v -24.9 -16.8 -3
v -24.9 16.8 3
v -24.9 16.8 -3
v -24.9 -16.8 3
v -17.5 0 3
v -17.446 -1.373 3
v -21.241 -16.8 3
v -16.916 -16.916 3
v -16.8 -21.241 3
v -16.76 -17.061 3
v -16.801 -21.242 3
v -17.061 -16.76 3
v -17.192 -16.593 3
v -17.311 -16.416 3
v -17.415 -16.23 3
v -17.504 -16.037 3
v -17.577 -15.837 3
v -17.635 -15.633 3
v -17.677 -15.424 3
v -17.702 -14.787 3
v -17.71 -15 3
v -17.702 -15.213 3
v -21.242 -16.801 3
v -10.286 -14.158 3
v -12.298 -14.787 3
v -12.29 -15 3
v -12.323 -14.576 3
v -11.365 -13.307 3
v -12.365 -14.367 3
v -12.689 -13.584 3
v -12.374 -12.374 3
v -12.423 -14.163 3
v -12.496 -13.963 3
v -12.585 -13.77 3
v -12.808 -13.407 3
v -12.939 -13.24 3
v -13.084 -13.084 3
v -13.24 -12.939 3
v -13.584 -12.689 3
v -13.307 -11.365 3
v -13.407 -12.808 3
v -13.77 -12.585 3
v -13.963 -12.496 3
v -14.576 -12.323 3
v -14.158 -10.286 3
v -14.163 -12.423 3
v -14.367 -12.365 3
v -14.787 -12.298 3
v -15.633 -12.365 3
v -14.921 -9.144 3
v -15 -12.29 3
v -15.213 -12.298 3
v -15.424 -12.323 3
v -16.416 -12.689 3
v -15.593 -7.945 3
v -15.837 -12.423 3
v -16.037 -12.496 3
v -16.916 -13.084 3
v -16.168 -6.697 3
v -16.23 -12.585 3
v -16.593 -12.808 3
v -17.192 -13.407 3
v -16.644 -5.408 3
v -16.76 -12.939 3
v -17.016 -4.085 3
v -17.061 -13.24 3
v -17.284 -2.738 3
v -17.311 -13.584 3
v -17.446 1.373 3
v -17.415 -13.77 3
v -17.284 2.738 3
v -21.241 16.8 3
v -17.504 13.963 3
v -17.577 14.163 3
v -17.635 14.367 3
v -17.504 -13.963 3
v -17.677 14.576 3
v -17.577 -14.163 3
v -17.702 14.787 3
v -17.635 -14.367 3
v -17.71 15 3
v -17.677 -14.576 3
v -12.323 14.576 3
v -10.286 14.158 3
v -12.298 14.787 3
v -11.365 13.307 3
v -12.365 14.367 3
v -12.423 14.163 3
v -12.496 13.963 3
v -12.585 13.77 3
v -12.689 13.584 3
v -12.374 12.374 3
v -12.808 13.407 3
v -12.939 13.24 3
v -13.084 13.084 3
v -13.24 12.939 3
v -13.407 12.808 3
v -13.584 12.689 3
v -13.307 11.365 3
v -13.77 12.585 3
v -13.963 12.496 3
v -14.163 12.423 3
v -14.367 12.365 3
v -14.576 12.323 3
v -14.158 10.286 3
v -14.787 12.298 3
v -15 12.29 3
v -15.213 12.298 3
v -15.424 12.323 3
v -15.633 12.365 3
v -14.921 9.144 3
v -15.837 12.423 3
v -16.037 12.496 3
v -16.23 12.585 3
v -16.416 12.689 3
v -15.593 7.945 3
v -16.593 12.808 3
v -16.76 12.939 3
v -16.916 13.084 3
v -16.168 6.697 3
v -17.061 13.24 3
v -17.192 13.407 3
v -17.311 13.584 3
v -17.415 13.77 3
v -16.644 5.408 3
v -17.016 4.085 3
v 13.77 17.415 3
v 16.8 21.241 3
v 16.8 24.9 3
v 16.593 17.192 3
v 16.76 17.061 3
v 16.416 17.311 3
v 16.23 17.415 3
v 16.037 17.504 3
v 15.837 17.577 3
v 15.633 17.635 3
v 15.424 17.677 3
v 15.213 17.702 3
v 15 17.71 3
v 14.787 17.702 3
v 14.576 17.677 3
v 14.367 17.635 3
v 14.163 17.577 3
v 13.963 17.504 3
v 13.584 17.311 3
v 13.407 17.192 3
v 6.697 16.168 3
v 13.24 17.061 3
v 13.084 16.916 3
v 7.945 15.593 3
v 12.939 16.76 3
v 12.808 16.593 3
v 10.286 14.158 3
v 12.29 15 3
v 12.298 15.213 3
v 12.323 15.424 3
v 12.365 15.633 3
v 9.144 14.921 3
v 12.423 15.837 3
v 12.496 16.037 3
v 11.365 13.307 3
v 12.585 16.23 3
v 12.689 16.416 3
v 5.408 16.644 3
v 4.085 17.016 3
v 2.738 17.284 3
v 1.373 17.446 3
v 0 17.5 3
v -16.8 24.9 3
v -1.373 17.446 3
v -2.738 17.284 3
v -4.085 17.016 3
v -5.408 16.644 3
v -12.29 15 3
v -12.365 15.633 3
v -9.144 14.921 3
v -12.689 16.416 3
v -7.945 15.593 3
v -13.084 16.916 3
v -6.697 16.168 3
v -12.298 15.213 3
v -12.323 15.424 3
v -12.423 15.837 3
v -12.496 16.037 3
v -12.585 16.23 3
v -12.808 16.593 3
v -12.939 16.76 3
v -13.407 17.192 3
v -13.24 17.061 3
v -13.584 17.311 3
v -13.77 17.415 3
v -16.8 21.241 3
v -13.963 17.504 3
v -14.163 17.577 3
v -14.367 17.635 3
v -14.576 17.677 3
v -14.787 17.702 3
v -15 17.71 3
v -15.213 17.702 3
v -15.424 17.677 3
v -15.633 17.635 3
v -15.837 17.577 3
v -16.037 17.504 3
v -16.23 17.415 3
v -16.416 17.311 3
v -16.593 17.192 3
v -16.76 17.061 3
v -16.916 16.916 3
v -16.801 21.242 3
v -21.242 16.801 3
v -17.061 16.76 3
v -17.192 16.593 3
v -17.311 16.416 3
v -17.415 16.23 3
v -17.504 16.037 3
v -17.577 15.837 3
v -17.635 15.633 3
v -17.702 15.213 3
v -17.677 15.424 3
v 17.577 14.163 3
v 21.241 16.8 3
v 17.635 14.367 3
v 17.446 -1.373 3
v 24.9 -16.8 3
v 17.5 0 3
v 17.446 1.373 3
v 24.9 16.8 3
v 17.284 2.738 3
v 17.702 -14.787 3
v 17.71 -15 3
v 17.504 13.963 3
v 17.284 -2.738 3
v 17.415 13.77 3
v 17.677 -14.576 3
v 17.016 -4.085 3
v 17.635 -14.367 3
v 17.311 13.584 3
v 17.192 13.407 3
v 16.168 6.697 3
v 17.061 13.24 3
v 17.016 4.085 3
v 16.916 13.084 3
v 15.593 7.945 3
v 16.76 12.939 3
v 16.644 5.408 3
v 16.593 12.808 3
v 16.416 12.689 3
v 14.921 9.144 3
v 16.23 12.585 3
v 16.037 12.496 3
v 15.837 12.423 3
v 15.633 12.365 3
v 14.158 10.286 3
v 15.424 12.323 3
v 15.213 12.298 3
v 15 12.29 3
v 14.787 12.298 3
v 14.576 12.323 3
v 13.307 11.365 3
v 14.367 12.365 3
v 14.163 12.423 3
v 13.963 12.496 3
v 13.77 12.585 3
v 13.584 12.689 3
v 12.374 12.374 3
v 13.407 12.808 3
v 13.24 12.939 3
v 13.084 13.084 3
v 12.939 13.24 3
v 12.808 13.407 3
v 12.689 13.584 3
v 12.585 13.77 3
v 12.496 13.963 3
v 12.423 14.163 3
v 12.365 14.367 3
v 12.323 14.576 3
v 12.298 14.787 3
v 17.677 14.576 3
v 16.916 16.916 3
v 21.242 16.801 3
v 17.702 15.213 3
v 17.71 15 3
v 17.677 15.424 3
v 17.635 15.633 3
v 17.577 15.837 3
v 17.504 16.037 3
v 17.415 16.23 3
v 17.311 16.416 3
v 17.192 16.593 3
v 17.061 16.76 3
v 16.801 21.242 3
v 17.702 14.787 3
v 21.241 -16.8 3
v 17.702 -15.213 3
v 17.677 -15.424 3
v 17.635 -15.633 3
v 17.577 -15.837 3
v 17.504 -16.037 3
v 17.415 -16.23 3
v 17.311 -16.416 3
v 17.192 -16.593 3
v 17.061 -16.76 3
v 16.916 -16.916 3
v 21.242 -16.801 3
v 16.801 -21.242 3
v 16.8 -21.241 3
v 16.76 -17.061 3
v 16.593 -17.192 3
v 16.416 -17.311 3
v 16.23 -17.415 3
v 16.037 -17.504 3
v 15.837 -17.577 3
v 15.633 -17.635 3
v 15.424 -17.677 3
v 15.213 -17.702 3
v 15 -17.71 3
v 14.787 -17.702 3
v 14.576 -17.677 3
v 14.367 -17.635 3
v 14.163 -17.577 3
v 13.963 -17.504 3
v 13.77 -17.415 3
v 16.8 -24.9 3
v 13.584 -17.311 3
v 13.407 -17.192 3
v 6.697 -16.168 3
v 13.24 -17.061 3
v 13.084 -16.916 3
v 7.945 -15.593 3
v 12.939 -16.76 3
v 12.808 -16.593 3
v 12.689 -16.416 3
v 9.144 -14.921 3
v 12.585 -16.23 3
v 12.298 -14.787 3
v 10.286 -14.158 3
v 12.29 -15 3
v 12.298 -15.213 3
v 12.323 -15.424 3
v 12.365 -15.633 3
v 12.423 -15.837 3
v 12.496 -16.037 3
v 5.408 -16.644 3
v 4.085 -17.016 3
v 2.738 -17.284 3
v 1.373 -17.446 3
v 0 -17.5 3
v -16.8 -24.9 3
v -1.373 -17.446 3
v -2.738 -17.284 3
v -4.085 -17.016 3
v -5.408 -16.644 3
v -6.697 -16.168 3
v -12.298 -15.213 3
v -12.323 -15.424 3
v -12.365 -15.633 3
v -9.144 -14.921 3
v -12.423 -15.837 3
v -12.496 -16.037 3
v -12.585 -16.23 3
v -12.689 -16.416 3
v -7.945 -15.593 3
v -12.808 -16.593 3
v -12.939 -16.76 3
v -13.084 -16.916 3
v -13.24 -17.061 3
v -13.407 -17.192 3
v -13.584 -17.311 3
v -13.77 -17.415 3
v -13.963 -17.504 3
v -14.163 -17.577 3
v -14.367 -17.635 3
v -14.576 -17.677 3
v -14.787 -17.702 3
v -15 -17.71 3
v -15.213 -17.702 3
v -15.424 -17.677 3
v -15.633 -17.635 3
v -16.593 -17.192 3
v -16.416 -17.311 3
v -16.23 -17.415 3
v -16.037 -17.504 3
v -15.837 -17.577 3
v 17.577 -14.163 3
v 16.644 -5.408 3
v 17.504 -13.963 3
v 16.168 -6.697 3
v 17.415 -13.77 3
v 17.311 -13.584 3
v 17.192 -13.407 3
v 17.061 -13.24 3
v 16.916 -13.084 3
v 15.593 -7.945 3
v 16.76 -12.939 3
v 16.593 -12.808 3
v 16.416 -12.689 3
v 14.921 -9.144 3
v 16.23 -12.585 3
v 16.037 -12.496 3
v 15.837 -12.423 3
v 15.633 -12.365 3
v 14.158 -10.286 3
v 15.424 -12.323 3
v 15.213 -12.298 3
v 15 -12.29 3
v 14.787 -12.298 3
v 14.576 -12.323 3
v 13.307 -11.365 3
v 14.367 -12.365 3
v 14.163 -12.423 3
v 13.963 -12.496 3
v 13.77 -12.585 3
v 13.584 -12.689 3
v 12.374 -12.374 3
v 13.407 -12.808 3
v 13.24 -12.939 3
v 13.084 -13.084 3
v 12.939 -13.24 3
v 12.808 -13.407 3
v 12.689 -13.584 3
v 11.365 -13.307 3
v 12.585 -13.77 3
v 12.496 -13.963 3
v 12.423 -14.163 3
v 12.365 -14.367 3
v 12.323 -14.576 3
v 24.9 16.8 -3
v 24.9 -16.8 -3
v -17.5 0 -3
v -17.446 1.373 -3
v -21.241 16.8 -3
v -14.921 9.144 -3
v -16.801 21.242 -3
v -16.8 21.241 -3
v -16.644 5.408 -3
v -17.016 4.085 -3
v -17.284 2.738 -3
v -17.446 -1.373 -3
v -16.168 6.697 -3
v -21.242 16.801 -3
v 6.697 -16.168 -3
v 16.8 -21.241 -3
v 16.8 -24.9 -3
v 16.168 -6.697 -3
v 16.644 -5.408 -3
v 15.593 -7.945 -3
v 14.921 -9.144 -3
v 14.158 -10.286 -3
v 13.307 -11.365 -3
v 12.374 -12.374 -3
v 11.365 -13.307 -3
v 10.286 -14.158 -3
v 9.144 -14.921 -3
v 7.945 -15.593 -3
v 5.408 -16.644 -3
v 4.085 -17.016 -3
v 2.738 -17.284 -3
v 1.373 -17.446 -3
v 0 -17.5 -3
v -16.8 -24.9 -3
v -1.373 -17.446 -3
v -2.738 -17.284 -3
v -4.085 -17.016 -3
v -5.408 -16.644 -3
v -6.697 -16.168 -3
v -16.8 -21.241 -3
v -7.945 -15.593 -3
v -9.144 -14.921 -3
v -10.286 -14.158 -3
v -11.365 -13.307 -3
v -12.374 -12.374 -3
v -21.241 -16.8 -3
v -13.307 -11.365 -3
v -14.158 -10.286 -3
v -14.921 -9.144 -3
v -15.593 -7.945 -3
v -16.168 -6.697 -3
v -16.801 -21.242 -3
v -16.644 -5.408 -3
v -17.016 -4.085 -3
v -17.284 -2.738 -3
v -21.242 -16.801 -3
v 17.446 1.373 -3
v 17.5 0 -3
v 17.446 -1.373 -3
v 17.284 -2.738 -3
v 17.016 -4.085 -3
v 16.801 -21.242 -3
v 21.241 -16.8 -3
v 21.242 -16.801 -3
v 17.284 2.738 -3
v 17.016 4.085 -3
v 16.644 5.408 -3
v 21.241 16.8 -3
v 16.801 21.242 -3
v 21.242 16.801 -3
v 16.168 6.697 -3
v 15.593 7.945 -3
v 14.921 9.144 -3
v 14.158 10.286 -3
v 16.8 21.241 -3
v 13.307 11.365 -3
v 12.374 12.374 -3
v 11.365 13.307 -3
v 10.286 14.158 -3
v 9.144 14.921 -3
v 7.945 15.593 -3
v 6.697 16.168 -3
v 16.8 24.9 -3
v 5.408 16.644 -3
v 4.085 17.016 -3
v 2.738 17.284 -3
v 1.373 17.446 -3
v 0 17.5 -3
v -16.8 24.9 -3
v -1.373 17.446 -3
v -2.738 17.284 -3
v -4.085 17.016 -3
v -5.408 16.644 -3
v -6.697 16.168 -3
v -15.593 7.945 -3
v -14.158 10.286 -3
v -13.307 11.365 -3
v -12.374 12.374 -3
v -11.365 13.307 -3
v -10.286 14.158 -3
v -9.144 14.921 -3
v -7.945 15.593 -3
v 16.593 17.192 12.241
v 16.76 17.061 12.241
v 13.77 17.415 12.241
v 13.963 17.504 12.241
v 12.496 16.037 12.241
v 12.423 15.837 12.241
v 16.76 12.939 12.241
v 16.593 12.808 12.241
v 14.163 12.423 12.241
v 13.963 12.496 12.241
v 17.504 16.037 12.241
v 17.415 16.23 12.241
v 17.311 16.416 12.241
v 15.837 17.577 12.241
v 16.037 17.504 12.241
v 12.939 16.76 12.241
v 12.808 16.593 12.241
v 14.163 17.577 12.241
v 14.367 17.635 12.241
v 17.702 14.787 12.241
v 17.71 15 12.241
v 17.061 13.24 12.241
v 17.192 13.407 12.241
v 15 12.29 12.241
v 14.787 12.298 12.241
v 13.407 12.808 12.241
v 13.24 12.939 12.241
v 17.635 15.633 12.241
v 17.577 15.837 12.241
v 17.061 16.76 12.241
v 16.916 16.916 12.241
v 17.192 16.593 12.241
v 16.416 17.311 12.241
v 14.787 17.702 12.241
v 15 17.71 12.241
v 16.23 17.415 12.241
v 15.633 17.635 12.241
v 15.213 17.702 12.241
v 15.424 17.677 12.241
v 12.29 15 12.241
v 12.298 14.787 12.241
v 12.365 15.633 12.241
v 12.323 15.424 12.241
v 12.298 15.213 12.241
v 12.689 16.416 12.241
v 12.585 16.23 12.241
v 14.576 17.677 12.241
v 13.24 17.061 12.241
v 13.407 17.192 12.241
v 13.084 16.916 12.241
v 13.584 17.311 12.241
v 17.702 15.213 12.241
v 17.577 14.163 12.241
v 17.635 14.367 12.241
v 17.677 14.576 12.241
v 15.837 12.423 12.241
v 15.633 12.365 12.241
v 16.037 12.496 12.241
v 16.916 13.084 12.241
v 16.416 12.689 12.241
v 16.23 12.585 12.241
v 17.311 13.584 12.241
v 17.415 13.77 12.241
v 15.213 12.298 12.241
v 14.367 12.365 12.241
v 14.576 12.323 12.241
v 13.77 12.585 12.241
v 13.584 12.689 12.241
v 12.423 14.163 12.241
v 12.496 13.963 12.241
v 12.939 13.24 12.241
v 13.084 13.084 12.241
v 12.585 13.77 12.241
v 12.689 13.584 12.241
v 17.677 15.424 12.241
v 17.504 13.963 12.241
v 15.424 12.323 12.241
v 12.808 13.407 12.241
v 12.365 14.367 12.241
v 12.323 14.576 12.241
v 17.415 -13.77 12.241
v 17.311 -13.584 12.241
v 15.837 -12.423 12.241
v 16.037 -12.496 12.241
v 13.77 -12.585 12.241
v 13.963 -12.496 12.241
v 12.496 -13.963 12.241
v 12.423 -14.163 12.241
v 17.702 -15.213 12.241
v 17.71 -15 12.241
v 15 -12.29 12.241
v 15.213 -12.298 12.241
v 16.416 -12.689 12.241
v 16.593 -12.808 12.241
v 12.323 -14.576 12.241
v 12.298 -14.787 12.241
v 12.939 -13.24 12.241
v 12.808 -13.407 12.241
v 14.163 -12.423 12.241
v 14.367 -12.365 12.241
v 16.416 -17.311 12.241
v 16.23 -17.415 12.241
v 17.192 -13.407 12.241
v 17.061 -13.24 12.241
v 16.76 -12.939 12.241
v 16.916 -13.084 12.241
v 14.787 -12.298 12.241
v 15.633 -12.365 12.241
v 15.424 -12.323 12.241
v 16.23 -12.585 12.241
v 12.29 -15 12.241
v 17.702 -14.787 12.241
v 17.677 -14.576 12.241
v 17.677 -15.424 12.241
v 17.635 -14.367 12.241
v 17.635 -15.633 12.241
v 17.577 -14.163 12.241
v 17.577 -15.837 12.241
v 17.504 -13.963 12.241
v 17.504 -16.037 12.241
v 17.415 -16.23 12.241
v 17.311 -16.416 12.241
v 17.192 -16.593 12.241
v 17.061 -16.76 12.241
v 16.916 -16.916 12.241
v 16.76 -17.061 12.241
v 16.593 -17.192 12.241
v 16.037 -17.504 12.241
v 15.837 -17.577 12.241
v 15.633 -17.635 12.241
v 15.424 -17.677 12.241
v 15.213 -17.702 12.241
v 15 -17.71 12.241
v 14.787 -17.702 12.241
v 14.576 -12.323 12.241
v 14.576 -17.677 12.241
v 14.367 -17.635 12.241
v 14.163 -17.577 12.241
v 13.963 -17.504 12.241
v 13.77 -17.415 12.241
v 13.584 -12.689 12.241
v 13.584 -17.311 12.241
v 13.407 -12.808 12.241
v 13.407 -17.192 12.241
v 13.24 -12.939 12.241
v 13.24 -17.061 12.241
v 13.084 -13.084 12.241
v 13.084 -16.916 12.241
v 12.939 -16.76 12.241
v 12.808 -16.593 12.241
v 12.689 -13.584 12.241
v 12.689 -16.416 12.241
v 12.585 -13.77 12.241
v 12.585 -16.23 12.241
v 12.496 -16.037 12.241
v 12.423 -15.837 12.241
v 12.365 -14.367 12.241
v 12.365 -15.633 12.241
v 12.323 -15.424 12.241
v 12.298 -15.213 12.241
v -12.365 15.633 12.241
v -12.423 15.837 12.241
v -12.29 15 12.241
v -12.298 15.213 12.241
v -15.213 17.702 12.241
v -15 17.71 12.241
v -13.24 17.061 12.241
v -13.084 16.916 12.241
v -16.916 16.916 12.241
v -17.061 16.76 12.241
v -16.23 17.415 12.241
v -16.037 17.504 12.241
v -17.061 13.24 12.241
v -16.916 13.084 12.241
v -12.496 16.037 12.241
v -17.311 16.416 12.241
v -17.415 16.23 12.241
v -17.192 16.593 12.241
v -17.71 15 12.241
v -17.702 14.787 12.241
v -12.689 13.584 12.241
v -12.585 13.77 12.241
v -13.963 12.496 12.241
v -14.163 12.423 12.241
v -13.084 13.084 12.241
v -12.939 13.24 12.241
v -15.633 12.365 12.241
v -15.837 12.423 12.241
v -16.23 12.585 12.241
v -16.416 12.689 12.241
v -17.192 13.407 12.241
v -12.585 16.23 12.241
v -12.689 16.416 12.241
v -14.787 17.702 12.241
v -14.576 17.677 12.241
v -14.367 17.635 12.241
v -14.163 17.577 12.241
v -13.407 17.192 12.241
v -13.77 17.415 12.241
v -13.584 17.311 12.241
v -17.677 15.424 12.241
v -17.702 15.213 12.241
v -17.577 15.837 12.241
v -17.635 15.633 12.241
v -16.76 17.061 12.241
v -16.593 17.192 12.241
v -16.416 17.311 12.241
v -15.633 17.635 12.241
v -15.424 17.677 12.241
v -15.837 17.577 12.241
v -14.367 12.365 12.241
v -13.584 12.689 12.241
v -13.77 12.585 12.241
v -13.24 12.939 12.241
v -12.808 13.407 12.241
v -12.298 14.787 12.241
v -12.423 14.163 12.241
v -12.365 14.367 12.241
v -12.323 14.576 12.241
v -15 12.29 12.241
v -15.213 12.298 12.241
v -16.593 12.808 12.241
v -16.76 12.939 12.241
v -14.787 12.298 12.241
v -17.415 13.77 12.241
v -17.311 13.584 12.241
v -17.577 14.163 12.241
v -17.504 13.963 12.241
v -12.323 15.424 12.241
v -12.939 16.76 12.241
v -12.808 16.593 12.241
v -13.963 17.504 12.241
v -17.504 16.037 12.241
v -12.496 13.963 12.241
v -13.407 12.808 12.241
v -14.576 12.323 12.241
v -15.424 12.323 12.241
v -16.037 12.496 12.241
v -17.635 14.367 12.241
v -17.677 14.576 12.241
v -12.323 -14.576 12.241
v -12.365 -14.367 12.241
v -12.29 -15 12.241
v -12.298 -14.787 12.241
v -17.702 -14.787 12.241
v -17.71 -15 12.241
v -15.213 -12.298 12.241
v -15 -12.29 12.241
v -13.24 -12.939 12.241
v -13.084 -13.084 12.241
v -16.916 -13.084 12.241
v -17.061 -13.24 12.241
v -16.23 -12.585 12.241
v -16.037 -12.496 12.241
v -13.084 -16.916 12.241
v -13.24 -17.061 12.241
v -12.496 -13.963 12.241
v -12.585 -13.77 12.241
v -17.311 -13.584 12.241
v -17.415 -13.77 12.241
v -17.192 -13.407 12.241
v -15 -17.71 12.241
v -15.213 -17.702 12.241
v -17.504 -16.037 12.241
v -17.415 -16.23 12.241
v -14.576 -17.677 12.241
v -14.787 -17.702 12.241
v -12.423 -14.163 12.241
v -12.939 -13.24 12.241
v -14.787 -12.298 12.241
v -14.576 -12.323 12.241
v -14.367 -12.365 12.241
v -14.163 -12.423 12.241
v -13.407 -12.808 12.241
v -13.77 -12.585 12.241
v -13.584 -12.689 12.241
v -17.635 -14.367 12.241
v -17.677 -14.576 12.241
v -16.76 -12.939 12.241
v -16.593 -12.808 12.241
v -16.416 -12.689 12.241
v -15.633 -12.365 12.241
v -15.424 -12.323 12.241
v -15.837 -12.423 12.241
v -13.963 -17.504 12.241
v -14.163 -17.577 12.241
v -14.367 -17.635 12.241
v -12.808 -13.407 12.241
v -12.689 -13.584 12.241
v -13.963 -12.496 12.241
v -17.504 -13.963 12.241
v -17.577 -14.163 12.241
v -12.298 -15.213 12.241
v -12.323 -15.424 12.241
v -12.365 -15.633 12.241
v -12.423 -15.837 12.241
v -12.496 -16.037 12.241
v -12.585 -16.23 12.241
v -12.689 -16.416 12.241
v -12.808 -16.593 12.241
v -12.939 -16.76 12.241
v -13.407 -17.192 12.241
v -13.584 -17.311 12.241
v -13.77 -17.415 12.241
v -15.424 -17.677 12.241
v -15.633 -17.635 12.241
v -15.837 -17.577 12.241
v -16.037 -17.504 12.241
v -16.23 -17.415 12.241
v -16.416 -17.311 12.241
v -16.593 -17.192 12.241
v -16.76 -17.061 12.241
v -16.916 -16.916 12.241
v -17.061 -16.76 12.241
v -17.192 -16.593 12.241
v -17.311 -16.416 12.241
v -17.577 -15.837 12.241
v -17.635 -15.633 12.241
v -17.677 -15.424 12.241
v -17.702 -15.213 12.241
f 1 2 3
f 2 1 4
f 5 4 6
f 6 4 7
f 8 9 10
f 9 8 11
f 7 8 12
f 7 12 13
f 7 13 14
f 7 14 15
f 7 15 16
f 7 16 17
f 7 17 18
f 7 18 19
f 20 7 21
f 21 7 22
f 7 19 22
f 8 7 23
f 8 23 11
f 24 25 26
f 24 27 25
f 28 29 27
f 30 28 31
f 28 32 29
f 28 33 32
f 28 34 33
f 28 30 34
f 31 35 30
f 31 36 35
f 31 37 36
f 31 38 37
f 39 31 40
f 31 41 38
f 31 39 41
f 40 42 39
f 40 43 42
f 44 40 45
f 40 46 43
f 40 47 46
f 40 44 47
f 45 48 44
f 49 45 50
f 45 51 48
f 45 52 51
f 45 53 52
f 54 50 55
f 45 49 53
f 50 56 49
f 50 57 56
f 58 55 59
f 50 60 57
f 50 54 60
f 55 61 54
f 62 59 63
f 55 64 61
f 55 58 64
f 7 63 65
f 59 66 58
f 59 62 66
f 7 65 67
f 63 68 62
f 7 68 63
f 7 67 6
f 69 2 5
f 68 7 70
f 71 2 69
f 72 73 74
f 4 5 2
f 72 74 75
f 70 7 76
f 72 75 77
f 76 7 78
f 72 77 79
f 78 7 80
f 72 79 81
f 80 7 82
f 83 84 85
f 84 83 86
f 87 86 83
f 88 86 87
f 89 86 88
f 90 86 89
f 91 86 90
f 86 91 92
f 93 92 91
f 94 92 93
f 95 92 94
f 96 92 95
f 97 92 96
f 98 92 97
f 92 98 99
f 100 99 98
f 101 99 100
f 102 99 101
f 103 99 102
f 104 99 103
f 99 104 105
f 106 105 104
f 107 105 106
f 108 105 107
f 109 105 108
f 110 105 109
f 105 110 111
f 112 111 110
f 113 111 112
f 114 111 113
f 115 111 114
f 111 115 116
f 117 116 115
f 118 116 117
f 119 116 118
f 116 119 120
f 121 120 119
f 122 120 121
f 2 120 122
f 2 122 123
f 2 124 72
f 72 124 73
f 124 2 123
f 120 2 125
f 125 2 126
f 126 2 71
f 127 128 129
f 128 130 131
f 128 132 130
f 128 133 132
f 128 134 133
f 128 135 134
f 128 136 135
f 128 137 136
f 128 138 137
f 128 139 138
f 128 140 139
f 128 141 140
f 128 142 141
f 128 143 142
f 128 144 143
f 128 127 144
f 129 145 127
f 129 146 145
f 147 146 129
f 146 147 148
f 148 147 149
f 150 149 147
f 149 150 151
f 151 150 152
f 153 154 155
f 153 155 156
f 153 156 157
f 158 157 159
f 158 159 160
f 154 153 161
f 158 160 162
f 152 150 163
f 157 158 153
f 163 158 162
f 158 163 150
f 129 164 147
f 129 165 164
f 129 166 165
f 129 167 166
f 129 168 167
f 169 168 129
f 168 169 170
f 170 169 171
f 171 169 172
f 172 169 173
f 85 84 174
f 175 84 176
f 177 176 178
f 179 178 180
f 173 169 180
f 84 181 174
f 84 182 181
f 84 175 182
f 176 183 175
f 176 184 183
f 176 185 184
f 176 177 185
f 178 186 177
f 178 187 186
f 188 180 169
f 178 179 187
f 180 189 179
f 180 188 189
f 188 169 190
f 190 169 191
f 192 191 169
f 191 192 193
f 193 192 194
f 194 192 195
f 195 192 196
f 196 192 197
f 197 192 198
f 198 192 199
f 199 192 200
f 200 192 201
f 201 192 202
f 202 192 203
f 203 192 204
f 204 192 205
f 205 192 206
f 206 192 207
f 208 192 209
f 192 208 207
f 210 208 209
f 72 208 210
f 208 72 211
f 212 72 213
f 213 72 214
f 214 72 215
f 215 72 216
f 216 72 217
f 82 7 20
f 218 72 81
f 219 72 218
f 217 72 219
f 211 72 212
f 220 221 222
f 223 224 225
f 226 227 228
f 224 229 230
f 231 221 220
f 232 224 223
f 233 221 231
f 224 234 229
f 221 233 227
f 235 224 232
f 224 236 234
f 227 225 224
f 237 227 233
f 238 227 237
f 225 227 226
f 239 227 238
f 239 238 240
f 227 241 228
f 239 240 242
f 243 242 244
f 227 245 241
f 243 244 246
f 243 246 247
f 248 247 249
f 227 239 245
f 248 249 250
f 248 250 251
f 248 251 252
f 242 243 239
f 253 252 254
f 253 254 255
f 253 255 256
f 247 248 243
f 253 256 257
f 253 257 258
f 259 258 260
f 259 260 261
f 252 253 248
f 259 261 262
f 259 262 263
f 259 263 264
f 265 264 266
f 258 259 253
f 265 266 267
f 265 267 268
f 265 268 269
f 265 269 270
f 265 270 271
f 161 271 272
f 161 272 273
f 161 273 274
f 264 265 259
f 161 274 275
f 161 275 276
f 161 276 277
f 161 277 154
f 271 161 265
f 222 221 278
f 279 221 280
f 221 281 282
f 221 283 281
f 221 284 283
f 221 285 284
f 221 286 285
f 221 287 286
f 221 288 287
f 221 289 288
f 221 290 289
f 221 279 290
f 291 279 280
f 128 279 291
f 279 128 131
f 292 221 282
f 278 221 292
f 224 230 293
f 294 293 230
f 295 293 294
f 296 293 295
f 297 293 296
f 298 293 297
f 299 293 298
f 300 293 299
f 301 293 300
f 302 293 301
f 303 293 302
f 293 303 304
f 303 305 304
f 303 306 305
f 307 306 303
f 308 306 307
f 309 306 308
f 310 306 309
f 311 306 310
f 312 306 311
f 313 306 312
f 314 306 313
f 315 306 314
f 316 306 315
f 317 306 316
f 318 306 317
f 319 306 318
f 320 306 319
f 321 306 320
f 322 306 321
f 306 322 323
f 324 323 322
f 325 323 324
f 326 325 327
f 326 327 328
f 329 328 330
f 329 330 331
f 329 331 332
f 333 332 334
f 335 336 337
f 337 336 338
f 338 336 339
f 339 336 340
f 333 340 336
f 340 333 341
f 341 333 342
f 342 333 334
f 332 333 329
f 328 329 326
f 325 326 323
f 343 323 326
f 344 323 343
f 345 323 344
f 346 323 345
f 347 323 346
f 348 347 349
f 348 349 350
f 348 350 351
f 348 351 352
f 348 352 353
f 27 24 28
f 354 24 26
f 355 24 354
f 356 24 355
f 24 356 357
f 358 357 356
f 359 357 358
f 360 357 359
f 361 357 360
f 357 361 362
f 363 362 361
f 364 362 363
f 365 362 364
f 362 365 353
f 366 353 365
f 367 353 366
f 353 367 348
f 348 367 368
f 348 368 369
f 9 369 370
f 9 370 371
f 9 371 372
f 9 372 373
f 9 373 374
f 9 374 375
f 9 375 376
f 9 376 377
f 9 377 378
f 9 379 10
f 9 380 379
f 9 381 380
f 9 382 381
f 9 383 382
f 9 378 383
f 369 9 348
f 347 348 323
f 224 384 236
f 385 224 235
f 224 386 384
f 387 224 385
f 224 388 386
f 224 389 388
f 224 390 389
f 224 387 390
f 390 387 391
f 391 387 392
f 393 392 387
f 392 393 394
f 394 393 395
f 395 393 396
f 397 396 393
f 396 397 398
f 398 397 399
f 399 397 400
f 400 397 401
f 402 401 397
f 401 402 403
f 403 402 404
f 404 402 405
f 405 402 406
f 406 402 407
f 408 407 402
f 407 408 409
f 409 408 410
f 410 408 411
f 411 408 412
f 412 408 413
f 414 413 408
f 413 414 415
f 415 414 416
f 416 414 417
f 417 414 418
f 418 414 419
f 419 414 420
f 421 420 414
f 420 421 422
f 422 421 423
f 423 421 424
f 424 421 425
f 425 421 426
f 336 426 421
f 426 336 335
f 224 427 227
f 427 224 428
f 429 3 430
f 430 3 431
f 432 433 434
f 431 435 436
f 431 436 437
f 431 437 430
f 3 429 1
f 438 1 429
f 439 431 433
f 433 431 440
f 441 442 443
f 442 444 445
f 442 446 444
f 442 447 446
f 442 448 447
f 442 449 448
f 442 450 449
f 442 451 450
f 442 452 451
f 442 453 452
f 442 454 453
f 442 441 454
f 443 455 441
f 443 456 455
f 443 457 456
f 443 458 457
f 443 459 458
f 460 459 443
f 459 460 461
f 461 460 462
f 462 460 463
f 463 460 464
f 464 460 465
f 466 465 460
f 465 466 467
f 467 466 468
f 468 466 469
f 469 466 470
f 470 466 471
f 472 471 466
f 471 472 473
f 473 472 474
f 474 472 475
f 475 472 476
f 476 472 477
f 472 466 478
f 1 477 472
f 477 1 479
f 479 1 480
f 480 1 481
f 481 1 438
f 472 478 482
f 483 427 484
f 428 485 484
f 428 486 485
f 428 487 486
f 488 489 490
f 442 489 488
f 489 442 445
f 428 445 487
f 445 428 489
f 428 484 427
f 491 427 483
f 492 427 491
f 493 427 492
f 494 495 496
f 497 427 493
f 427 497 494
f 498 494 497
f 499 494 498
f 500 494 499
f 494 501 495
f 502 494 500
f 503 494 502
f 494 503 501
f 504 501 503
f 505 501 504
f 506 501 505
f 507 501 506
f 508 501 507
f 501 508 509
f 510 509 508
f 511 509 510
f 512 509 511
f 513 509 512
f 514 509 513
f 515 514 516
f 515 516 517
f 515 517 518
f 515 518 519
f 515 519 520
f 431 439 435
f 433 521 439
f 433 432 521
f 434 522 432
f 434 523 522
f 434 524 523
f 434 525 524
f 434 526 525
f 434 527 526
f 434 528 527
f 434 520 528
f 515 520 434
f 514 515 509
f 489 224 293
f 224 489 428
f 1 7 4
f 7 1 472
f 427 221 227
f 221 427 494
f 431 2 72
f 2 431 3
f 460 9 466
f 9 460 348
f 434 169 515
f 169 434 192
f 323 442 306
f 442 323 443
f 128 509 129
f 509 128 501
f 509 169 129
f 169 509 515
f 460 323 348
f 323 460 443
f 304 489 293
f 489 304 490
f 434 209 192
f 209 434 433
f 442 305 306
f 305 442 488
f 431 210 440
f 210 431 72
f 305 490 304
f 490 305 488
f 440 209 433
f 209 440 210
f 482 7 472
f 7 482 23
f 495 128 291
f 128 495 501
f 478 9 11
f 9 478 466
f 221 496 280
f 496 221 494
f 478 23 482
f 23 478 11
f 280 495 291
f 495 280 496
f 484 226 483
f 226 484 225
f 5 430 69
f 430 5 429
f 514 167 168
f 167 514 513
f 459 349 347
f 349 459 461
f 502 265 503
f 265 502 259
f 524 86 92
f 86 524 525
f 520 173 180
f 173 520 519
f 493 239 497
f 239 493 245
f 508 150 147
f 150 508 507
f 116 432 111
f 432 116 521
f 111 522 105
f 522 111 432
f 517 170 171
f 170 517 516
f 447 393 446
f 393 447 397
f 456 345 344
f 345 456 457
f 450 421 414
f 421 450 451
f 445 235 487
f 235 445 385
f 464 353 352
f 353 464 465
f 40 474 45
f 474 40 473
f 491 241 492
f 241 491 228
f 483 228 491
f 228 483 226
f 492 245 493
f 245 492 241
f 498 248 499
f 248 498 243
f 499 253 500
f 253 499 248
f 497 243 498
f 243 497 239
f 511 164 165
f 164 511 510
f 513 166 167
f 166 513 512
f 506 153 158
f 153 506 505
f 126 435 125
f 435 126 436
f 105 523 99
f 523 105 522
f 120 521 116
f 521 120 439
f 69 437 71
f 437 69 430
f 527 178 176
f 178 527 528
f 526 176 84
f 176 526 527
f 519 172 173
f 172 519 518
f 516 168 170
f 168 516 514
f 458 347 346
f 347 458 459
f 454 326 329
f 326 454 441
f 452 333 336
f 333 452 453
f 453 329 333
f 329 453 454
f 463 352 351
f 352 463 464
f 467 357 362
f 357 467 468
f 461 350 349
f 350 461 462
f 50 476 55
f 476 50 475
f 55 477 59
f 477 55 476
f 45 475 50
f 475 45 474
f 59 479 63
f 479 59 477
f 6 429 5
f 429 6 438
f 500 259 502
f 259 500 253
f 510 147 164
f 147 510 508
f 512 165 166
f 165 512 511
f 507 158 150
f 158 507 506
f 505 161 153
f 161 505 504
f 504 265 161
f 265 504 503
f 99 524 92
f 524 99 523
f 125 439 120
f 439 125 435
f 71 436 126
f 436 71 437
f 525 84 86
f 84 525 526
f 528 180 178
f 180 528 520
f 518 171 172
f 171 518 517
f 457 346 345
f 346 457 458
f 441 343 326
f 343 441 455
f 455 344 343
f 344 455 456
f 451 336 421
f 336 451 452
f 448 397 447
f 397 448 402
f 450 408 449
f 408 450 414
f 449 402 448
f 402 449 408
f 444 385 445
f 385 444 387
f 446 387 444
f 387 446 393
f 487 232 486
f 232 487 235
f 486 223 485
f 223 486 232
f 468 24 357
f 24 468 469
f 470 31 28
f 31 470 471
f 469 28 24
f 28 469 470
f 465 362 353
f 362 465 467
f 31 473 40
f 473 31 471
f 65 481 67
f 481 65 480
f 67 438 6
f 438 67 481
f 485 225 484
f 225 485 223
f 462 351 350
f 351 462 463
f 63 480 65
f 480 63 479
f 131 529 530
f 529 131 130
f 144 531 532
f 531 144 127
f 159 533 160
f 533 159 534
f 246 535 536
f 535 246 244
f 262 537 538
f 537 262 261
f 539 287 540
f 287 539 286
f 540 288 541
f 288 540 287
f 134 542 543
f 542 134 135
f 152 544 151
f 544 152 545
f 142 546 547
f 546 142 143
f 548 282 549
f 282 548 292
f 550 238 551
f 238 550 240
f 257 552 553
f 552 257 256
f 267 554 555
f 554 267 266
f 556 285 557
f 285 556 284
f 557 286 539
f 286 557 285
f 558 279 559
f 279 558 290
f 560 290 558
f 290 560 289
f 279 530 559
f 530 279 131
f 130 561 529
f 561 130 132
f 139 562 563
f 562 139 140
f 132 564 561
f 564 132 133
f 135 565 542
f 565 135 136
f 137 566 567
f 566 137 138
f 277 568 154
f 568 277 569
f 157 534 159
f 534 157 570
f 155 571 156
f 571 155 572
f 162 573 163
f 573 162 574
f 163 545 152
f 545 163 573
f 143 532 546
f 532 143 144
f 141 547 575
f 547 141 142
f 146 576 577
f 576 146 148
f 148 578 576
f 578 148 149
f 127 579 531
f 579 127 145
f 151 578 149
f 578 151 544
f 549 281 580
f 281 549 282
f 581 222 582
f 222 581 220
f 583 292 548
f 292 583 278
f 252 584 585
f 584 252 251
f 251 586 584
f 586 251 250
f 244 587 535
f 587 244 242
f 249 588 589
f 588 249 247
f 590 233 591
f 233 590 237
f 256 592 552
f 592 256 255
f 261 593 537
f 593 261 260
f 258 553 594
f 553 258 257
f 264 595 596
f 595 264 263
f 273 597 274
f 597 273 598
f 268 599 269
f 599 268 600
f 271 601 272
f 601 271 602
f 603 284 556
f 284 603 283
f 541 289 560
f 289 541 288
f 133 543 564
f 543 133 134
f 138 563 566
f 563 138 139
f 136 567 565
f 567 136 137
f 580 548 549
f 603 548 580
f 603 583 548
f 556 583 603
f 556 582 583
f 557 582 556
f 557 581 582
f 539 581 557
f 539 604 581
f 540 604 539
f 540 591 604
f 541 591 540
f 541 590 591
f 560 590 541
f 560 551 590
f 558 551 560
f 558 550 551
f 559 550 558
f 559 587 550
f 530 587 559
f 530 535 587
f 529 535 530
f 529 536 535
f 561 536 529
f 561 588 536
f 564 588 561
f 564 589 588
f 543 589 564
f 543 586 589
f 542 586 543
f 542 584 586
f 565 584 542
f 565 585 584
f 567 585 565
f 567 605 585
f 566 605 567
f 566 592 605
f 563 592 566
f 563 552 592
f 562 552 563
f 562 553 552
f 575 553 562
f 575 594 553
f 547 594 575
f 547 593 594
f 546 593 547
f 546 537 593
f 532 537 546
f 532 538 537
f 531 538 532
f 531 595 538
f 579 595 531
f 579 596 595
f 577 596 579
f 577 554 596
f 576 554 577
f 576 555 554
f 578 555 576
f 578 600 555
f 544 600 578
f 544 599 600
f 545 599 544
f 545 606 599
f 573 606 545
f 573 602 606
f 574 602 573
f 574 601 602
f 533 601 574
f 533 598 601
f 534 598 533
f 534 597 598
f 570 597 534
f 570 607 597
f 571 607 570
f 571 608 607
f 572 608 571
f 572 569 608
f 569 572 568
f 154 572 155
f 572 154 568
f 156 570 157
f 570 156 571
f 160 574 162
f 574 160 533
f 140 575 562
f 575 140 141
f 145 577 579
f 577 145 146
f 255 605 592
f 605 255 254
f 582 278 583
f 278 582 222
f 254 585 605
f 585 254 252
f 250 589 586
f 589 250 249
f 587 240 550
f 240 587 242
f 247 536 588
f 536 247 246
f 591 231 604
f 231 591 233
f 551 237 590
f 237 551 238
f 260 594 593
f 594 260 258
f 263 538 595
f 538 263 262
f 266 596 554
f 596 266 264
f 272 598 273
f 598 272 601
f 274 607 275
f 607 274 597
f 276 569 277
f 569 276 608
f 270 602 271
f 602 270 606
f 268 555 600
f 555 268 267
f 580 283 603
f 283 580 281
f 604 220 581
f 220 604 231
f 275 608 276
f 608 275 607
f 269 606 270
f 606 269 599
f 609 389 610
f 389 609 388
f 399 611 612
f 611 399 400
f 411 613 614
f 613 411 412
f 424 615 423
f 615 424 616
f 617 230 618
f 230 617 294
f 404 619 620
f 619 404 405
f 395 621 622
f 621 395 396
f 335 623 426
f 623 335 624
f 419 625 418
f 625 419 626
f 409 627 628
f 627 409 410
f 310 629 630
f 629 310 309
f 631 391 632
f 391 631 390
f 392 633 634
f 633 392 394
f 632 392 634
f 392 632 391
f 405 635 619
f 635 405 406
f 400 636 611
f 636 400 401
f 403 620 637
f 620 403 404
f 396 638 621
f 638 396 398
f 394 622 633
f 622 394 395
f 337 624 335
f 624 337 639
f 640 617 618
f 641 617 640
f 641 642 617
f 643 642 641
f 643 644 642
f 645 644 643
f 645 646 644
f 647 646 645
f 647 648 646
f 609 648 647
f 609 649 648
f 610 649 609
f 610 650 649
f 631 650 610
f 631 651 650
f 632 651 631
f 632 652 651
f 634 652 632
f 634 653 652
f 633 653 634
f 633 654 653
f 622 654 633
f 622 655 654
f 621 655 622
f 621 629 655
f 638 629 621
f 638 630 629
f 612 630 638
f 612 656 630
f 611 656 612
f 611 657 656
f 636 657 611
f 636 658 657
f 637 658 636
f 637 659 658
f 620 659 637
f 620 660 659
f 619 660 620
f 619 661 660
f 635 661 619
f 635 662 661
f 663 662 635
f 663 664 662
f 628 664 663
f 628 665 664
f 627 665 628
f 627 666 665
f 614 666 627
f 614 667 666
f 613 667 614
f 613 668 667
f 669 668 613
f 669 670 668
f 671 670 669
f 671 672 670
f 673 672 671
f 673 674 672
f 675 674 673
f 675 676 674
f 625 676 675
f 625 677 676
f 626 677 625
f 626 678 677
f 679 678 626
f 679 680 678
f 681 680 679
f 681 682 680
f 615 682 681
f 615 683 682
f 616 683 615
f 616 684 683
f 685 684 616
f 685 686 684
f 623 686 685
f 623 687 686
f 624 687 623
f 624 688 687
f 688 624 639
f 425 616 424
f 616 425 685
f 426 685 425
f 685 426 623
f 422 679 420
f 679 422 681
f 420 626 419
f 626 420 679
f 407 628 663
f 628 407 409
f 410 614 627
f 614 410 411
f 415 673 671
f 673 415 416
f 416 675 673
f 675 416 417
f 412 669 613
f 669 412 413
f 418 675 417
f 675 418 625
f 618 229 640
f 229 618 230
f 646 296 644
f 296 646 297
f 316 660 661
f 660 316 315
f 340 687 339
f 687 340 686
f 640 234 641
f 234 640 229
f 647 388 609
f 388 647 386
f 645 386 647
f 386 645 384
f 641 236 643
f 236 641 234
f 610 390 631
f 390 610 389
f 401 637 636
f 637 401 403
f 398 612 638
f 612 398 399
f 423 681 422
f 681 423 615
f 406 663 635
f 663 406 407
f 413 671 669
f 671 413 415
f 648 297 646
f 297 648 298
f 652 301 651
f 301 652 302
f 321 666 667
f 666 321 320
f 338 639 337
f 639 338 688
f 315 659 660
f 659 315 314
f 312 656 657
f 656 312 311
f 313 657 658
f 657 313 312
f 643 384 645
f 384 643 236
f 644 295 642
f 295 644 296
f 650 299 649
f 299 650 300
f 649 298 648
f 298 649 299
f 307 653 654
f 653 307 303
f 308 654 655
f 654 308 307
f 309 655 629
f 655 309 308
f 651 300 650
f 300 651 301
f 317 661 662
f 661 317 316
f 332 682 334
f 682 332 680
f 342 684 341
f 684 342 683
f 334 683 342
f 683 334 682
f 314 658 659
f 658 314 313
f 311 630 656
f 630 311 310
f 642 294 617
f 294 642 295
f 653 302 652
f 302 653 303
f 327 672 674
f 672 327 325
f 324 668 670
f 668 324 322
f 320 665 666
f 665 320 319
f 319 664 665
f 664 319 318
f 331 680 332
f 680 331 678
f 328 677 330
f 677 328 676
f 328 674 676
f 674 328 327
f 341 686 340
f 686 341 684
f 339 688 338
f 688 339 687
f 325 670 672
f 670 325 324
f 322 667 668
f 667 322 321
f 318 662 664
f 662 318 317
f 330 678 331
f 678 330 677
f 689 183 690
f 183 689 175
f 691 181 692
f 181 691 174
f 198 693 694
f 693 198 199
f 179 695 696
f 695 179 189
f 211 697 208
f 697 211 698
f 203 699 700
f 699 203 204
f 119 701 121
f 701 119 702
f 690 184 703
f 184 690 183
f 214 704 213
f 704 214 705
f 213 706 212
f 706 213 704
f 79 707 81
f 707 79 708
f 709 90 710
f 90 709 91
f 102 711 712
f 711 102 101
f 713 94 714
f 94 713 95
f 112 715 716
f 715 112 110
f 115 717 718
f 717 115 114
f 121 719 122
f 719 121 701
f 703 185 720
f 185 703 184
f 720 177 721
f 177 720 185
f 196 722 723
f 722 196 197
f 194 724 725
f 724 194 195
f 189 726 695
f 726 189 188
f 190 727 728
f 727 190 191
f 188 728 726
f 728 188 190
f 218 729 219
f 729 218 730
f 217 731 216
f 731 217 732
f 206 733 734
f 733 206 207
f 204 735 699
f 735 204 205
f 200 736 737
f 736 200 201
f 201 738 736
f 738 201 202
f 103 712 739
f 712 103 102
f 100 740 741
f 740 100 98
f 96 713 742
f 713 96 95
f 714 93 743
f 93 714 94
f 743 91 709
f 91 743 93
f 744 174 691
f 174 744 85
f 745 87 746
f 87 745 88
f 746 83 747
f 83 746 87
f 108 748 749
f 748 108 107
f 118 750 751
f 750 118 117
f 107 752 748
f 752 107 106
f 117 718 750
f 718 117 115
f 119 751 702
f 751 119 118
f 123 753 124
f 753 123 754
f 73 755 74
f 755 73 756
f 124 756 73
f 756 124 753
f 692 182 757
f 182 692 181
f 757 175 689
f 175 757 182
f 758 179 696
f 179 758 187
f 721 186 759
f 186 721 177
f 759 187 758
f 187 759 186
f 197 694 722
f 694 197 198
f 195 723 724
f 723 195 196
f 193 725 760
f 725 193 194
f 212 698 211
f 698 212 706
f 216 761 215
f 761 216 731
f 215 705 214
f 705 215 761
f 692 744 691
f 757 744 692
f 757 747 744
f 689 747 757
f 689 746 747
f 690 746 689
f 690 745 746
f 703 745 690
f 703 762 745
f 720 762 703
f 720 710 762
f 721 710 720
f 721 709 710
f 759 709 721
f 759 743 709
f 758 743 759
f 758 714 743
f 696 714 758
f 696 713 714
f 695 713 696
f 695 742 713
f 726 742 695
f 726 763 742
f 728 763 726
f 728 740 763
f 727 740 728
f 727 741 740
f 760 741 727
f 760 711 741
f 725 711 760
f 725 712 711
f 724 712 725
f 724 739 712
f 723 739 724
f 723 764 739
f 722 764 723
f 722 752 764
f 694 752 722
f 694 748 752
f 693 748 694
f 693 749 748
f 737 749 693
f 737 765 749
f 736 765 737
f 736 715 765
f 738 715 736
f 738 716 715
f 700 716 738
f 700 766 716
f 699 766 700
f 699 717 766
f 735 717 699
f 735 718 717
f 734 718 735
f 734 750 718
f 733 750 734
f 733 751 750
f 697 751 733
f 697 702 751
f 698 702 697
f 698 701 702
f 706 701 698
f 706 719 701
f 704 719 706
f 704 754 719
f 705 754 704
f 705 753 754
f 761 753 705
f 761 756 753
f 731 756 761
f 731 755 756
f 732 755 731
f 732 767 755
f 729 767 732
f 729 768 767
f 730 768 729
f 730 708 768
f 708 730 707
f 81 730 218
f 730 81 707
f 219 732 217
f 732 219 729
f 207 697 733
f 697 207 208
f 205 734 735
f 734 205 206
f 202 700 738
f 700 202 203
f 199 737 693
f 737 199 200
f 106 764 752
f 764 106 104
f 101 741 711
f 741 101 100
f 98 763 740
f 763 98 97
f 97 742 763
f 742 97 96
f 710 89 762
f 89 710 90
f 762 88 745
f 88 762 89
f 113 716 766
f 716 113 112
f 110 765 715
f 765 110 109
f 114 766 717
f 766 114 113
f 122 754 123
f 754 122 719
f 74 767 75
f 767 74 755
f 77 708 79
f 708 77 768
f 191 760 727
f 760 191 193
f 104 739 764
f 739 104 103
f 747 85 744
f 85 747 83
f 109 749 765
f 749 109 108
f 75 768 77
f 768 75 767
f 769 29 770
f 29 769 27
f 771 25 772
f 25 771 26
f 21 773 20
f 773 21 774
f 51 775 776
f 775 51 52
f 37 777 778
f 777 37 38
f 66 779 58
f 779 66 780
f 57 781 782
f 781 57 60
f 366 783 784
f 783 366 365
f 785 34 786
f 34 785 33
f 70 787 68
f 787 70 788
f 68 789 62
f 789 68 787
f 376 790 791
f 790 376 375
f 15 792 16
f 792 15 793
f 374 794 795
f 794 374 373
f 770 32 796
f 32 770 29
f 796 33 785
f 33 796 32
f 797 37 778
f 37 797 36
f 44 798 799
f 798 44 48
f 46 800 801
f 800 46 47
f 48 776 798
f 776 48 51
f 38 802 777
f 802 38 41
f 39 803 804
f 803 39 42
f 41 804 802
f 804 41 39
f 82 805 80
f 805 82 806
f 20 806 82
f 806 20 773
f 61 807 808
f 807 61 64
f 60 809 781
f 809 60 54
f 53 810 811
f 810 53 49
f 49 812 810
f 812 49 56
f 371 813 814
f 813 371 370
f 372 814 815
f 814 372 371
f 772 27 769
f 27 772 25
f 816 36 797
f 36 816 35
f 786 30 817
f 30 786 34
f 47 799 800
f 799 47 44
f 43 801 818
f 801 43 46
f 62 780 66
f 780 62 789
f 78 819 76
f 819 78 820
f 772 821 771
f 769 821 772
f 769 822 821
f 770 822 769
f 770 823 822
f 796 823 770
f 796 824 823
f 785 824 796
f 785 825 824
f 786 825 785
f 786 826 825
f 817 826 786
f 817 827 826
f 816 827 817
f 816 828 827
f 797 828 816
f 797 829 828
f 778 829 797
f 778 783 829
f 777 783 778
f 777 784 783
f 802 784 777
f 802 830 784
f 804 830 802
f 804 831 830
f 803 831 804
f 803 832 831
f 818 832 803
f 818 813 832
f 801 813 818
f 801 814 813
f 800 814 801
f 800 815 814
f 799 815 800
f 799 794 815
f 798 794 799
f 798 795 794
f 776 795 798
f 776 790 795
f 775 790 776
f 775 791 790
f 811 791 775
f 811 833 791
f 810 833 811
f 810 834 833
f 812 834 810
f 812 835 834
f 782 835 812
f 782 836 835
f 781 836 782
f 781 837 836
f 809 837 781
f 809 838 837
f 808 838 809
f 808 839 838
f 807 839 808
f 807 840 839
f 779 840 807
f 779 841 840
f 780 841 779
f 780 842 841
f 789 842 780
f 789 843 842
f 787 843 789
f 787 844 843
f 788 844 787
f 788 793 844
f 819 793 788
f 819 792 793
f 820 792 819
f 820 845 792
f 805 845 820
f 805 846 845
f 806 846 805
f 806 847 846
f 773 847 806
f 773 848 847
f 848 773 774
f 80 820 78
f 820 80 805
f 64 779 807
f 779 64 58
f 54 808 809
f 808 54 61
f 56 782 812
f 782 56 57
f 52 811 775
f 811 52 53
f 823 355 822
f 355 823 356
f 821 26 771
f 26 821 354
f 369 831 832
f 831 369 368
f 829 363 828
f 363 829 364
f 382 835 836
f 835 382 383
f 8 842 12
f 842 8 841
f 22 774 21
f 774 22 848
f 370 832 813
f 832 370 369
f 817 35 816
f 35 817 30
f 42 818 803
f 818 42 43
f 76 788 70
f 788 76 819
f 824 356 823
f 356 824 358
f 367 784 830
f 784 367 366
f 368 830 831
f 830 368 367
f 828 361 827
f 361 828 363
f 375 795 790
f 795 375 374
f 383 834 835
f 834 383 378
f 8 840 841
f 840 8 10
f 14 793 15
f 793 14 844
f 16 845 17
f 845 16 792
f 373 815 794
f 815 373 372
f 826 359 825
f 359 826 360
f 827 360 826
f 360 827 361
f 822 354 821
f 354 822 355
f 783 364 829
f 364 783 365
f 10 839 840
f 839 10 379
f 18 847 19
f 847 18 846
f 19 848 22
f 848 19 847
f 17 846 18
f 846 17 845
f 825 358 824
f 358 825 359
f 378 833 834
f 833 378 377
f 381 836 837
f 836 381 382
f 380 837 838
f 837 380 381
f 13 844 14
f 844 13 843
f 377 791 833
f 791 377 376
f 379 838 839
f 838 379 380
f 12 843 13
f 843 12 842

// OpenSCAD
//Cube Insert: Thorlabs Cage System Components 

/* [User Parameters] */
//If the rods of this insert are too loose or too tight for the Thorlabs component, adjust their diameter by changing the offset (in millimetres)
off_dr = 0; //[-1:0.1:1]

/* [Hiden] */
//basic insert design
$fn = 80;
eps = .002;
a = 49.8;
b = 33.6;
c = 6.28;
d = 53.8;
h = 6;
//specific for this insert
dh = 35; //center hole diameter
dr = 5.42; //rod diameter
rp = 15; //rod pitch - half
hr = 9.24; //rod height

insert_thorlabs();

module insert_thorlabs(){
    union(){
        difference(){
            insert();
            cylinder(d = dh,h = h+eps,center = true);
        }
        translate([rp,rp,(h+hr)/2]) cylinder(d = dr+off_dr,h = hr+eps,center = true);
        translate([rp,-rp,(h+hr)/2]) cylinder(d = dr+off_dr,h = hr+eps,center = true);
        translate([-rp,rp,(h+hr)/2]) cylinder(d = dr+off_dr,h = hr+eps,center = true);
        translate([-rp,-rp,(h+hr)/2]) cylinder(d = dr+off_dr,h = hr+eps,center = true);
    }
}

module insert() {
    union() {   //basic insert design
            cube([a,b,h], center=true);
            cube([b,a,h], center=true);
            rotate(a=[0,0,45]){
                cube([c,d,h], center=true);
            }
            rotate(a=[0,0,-45]){
                cube([c,d,h], center=true);
            }
        }
}
